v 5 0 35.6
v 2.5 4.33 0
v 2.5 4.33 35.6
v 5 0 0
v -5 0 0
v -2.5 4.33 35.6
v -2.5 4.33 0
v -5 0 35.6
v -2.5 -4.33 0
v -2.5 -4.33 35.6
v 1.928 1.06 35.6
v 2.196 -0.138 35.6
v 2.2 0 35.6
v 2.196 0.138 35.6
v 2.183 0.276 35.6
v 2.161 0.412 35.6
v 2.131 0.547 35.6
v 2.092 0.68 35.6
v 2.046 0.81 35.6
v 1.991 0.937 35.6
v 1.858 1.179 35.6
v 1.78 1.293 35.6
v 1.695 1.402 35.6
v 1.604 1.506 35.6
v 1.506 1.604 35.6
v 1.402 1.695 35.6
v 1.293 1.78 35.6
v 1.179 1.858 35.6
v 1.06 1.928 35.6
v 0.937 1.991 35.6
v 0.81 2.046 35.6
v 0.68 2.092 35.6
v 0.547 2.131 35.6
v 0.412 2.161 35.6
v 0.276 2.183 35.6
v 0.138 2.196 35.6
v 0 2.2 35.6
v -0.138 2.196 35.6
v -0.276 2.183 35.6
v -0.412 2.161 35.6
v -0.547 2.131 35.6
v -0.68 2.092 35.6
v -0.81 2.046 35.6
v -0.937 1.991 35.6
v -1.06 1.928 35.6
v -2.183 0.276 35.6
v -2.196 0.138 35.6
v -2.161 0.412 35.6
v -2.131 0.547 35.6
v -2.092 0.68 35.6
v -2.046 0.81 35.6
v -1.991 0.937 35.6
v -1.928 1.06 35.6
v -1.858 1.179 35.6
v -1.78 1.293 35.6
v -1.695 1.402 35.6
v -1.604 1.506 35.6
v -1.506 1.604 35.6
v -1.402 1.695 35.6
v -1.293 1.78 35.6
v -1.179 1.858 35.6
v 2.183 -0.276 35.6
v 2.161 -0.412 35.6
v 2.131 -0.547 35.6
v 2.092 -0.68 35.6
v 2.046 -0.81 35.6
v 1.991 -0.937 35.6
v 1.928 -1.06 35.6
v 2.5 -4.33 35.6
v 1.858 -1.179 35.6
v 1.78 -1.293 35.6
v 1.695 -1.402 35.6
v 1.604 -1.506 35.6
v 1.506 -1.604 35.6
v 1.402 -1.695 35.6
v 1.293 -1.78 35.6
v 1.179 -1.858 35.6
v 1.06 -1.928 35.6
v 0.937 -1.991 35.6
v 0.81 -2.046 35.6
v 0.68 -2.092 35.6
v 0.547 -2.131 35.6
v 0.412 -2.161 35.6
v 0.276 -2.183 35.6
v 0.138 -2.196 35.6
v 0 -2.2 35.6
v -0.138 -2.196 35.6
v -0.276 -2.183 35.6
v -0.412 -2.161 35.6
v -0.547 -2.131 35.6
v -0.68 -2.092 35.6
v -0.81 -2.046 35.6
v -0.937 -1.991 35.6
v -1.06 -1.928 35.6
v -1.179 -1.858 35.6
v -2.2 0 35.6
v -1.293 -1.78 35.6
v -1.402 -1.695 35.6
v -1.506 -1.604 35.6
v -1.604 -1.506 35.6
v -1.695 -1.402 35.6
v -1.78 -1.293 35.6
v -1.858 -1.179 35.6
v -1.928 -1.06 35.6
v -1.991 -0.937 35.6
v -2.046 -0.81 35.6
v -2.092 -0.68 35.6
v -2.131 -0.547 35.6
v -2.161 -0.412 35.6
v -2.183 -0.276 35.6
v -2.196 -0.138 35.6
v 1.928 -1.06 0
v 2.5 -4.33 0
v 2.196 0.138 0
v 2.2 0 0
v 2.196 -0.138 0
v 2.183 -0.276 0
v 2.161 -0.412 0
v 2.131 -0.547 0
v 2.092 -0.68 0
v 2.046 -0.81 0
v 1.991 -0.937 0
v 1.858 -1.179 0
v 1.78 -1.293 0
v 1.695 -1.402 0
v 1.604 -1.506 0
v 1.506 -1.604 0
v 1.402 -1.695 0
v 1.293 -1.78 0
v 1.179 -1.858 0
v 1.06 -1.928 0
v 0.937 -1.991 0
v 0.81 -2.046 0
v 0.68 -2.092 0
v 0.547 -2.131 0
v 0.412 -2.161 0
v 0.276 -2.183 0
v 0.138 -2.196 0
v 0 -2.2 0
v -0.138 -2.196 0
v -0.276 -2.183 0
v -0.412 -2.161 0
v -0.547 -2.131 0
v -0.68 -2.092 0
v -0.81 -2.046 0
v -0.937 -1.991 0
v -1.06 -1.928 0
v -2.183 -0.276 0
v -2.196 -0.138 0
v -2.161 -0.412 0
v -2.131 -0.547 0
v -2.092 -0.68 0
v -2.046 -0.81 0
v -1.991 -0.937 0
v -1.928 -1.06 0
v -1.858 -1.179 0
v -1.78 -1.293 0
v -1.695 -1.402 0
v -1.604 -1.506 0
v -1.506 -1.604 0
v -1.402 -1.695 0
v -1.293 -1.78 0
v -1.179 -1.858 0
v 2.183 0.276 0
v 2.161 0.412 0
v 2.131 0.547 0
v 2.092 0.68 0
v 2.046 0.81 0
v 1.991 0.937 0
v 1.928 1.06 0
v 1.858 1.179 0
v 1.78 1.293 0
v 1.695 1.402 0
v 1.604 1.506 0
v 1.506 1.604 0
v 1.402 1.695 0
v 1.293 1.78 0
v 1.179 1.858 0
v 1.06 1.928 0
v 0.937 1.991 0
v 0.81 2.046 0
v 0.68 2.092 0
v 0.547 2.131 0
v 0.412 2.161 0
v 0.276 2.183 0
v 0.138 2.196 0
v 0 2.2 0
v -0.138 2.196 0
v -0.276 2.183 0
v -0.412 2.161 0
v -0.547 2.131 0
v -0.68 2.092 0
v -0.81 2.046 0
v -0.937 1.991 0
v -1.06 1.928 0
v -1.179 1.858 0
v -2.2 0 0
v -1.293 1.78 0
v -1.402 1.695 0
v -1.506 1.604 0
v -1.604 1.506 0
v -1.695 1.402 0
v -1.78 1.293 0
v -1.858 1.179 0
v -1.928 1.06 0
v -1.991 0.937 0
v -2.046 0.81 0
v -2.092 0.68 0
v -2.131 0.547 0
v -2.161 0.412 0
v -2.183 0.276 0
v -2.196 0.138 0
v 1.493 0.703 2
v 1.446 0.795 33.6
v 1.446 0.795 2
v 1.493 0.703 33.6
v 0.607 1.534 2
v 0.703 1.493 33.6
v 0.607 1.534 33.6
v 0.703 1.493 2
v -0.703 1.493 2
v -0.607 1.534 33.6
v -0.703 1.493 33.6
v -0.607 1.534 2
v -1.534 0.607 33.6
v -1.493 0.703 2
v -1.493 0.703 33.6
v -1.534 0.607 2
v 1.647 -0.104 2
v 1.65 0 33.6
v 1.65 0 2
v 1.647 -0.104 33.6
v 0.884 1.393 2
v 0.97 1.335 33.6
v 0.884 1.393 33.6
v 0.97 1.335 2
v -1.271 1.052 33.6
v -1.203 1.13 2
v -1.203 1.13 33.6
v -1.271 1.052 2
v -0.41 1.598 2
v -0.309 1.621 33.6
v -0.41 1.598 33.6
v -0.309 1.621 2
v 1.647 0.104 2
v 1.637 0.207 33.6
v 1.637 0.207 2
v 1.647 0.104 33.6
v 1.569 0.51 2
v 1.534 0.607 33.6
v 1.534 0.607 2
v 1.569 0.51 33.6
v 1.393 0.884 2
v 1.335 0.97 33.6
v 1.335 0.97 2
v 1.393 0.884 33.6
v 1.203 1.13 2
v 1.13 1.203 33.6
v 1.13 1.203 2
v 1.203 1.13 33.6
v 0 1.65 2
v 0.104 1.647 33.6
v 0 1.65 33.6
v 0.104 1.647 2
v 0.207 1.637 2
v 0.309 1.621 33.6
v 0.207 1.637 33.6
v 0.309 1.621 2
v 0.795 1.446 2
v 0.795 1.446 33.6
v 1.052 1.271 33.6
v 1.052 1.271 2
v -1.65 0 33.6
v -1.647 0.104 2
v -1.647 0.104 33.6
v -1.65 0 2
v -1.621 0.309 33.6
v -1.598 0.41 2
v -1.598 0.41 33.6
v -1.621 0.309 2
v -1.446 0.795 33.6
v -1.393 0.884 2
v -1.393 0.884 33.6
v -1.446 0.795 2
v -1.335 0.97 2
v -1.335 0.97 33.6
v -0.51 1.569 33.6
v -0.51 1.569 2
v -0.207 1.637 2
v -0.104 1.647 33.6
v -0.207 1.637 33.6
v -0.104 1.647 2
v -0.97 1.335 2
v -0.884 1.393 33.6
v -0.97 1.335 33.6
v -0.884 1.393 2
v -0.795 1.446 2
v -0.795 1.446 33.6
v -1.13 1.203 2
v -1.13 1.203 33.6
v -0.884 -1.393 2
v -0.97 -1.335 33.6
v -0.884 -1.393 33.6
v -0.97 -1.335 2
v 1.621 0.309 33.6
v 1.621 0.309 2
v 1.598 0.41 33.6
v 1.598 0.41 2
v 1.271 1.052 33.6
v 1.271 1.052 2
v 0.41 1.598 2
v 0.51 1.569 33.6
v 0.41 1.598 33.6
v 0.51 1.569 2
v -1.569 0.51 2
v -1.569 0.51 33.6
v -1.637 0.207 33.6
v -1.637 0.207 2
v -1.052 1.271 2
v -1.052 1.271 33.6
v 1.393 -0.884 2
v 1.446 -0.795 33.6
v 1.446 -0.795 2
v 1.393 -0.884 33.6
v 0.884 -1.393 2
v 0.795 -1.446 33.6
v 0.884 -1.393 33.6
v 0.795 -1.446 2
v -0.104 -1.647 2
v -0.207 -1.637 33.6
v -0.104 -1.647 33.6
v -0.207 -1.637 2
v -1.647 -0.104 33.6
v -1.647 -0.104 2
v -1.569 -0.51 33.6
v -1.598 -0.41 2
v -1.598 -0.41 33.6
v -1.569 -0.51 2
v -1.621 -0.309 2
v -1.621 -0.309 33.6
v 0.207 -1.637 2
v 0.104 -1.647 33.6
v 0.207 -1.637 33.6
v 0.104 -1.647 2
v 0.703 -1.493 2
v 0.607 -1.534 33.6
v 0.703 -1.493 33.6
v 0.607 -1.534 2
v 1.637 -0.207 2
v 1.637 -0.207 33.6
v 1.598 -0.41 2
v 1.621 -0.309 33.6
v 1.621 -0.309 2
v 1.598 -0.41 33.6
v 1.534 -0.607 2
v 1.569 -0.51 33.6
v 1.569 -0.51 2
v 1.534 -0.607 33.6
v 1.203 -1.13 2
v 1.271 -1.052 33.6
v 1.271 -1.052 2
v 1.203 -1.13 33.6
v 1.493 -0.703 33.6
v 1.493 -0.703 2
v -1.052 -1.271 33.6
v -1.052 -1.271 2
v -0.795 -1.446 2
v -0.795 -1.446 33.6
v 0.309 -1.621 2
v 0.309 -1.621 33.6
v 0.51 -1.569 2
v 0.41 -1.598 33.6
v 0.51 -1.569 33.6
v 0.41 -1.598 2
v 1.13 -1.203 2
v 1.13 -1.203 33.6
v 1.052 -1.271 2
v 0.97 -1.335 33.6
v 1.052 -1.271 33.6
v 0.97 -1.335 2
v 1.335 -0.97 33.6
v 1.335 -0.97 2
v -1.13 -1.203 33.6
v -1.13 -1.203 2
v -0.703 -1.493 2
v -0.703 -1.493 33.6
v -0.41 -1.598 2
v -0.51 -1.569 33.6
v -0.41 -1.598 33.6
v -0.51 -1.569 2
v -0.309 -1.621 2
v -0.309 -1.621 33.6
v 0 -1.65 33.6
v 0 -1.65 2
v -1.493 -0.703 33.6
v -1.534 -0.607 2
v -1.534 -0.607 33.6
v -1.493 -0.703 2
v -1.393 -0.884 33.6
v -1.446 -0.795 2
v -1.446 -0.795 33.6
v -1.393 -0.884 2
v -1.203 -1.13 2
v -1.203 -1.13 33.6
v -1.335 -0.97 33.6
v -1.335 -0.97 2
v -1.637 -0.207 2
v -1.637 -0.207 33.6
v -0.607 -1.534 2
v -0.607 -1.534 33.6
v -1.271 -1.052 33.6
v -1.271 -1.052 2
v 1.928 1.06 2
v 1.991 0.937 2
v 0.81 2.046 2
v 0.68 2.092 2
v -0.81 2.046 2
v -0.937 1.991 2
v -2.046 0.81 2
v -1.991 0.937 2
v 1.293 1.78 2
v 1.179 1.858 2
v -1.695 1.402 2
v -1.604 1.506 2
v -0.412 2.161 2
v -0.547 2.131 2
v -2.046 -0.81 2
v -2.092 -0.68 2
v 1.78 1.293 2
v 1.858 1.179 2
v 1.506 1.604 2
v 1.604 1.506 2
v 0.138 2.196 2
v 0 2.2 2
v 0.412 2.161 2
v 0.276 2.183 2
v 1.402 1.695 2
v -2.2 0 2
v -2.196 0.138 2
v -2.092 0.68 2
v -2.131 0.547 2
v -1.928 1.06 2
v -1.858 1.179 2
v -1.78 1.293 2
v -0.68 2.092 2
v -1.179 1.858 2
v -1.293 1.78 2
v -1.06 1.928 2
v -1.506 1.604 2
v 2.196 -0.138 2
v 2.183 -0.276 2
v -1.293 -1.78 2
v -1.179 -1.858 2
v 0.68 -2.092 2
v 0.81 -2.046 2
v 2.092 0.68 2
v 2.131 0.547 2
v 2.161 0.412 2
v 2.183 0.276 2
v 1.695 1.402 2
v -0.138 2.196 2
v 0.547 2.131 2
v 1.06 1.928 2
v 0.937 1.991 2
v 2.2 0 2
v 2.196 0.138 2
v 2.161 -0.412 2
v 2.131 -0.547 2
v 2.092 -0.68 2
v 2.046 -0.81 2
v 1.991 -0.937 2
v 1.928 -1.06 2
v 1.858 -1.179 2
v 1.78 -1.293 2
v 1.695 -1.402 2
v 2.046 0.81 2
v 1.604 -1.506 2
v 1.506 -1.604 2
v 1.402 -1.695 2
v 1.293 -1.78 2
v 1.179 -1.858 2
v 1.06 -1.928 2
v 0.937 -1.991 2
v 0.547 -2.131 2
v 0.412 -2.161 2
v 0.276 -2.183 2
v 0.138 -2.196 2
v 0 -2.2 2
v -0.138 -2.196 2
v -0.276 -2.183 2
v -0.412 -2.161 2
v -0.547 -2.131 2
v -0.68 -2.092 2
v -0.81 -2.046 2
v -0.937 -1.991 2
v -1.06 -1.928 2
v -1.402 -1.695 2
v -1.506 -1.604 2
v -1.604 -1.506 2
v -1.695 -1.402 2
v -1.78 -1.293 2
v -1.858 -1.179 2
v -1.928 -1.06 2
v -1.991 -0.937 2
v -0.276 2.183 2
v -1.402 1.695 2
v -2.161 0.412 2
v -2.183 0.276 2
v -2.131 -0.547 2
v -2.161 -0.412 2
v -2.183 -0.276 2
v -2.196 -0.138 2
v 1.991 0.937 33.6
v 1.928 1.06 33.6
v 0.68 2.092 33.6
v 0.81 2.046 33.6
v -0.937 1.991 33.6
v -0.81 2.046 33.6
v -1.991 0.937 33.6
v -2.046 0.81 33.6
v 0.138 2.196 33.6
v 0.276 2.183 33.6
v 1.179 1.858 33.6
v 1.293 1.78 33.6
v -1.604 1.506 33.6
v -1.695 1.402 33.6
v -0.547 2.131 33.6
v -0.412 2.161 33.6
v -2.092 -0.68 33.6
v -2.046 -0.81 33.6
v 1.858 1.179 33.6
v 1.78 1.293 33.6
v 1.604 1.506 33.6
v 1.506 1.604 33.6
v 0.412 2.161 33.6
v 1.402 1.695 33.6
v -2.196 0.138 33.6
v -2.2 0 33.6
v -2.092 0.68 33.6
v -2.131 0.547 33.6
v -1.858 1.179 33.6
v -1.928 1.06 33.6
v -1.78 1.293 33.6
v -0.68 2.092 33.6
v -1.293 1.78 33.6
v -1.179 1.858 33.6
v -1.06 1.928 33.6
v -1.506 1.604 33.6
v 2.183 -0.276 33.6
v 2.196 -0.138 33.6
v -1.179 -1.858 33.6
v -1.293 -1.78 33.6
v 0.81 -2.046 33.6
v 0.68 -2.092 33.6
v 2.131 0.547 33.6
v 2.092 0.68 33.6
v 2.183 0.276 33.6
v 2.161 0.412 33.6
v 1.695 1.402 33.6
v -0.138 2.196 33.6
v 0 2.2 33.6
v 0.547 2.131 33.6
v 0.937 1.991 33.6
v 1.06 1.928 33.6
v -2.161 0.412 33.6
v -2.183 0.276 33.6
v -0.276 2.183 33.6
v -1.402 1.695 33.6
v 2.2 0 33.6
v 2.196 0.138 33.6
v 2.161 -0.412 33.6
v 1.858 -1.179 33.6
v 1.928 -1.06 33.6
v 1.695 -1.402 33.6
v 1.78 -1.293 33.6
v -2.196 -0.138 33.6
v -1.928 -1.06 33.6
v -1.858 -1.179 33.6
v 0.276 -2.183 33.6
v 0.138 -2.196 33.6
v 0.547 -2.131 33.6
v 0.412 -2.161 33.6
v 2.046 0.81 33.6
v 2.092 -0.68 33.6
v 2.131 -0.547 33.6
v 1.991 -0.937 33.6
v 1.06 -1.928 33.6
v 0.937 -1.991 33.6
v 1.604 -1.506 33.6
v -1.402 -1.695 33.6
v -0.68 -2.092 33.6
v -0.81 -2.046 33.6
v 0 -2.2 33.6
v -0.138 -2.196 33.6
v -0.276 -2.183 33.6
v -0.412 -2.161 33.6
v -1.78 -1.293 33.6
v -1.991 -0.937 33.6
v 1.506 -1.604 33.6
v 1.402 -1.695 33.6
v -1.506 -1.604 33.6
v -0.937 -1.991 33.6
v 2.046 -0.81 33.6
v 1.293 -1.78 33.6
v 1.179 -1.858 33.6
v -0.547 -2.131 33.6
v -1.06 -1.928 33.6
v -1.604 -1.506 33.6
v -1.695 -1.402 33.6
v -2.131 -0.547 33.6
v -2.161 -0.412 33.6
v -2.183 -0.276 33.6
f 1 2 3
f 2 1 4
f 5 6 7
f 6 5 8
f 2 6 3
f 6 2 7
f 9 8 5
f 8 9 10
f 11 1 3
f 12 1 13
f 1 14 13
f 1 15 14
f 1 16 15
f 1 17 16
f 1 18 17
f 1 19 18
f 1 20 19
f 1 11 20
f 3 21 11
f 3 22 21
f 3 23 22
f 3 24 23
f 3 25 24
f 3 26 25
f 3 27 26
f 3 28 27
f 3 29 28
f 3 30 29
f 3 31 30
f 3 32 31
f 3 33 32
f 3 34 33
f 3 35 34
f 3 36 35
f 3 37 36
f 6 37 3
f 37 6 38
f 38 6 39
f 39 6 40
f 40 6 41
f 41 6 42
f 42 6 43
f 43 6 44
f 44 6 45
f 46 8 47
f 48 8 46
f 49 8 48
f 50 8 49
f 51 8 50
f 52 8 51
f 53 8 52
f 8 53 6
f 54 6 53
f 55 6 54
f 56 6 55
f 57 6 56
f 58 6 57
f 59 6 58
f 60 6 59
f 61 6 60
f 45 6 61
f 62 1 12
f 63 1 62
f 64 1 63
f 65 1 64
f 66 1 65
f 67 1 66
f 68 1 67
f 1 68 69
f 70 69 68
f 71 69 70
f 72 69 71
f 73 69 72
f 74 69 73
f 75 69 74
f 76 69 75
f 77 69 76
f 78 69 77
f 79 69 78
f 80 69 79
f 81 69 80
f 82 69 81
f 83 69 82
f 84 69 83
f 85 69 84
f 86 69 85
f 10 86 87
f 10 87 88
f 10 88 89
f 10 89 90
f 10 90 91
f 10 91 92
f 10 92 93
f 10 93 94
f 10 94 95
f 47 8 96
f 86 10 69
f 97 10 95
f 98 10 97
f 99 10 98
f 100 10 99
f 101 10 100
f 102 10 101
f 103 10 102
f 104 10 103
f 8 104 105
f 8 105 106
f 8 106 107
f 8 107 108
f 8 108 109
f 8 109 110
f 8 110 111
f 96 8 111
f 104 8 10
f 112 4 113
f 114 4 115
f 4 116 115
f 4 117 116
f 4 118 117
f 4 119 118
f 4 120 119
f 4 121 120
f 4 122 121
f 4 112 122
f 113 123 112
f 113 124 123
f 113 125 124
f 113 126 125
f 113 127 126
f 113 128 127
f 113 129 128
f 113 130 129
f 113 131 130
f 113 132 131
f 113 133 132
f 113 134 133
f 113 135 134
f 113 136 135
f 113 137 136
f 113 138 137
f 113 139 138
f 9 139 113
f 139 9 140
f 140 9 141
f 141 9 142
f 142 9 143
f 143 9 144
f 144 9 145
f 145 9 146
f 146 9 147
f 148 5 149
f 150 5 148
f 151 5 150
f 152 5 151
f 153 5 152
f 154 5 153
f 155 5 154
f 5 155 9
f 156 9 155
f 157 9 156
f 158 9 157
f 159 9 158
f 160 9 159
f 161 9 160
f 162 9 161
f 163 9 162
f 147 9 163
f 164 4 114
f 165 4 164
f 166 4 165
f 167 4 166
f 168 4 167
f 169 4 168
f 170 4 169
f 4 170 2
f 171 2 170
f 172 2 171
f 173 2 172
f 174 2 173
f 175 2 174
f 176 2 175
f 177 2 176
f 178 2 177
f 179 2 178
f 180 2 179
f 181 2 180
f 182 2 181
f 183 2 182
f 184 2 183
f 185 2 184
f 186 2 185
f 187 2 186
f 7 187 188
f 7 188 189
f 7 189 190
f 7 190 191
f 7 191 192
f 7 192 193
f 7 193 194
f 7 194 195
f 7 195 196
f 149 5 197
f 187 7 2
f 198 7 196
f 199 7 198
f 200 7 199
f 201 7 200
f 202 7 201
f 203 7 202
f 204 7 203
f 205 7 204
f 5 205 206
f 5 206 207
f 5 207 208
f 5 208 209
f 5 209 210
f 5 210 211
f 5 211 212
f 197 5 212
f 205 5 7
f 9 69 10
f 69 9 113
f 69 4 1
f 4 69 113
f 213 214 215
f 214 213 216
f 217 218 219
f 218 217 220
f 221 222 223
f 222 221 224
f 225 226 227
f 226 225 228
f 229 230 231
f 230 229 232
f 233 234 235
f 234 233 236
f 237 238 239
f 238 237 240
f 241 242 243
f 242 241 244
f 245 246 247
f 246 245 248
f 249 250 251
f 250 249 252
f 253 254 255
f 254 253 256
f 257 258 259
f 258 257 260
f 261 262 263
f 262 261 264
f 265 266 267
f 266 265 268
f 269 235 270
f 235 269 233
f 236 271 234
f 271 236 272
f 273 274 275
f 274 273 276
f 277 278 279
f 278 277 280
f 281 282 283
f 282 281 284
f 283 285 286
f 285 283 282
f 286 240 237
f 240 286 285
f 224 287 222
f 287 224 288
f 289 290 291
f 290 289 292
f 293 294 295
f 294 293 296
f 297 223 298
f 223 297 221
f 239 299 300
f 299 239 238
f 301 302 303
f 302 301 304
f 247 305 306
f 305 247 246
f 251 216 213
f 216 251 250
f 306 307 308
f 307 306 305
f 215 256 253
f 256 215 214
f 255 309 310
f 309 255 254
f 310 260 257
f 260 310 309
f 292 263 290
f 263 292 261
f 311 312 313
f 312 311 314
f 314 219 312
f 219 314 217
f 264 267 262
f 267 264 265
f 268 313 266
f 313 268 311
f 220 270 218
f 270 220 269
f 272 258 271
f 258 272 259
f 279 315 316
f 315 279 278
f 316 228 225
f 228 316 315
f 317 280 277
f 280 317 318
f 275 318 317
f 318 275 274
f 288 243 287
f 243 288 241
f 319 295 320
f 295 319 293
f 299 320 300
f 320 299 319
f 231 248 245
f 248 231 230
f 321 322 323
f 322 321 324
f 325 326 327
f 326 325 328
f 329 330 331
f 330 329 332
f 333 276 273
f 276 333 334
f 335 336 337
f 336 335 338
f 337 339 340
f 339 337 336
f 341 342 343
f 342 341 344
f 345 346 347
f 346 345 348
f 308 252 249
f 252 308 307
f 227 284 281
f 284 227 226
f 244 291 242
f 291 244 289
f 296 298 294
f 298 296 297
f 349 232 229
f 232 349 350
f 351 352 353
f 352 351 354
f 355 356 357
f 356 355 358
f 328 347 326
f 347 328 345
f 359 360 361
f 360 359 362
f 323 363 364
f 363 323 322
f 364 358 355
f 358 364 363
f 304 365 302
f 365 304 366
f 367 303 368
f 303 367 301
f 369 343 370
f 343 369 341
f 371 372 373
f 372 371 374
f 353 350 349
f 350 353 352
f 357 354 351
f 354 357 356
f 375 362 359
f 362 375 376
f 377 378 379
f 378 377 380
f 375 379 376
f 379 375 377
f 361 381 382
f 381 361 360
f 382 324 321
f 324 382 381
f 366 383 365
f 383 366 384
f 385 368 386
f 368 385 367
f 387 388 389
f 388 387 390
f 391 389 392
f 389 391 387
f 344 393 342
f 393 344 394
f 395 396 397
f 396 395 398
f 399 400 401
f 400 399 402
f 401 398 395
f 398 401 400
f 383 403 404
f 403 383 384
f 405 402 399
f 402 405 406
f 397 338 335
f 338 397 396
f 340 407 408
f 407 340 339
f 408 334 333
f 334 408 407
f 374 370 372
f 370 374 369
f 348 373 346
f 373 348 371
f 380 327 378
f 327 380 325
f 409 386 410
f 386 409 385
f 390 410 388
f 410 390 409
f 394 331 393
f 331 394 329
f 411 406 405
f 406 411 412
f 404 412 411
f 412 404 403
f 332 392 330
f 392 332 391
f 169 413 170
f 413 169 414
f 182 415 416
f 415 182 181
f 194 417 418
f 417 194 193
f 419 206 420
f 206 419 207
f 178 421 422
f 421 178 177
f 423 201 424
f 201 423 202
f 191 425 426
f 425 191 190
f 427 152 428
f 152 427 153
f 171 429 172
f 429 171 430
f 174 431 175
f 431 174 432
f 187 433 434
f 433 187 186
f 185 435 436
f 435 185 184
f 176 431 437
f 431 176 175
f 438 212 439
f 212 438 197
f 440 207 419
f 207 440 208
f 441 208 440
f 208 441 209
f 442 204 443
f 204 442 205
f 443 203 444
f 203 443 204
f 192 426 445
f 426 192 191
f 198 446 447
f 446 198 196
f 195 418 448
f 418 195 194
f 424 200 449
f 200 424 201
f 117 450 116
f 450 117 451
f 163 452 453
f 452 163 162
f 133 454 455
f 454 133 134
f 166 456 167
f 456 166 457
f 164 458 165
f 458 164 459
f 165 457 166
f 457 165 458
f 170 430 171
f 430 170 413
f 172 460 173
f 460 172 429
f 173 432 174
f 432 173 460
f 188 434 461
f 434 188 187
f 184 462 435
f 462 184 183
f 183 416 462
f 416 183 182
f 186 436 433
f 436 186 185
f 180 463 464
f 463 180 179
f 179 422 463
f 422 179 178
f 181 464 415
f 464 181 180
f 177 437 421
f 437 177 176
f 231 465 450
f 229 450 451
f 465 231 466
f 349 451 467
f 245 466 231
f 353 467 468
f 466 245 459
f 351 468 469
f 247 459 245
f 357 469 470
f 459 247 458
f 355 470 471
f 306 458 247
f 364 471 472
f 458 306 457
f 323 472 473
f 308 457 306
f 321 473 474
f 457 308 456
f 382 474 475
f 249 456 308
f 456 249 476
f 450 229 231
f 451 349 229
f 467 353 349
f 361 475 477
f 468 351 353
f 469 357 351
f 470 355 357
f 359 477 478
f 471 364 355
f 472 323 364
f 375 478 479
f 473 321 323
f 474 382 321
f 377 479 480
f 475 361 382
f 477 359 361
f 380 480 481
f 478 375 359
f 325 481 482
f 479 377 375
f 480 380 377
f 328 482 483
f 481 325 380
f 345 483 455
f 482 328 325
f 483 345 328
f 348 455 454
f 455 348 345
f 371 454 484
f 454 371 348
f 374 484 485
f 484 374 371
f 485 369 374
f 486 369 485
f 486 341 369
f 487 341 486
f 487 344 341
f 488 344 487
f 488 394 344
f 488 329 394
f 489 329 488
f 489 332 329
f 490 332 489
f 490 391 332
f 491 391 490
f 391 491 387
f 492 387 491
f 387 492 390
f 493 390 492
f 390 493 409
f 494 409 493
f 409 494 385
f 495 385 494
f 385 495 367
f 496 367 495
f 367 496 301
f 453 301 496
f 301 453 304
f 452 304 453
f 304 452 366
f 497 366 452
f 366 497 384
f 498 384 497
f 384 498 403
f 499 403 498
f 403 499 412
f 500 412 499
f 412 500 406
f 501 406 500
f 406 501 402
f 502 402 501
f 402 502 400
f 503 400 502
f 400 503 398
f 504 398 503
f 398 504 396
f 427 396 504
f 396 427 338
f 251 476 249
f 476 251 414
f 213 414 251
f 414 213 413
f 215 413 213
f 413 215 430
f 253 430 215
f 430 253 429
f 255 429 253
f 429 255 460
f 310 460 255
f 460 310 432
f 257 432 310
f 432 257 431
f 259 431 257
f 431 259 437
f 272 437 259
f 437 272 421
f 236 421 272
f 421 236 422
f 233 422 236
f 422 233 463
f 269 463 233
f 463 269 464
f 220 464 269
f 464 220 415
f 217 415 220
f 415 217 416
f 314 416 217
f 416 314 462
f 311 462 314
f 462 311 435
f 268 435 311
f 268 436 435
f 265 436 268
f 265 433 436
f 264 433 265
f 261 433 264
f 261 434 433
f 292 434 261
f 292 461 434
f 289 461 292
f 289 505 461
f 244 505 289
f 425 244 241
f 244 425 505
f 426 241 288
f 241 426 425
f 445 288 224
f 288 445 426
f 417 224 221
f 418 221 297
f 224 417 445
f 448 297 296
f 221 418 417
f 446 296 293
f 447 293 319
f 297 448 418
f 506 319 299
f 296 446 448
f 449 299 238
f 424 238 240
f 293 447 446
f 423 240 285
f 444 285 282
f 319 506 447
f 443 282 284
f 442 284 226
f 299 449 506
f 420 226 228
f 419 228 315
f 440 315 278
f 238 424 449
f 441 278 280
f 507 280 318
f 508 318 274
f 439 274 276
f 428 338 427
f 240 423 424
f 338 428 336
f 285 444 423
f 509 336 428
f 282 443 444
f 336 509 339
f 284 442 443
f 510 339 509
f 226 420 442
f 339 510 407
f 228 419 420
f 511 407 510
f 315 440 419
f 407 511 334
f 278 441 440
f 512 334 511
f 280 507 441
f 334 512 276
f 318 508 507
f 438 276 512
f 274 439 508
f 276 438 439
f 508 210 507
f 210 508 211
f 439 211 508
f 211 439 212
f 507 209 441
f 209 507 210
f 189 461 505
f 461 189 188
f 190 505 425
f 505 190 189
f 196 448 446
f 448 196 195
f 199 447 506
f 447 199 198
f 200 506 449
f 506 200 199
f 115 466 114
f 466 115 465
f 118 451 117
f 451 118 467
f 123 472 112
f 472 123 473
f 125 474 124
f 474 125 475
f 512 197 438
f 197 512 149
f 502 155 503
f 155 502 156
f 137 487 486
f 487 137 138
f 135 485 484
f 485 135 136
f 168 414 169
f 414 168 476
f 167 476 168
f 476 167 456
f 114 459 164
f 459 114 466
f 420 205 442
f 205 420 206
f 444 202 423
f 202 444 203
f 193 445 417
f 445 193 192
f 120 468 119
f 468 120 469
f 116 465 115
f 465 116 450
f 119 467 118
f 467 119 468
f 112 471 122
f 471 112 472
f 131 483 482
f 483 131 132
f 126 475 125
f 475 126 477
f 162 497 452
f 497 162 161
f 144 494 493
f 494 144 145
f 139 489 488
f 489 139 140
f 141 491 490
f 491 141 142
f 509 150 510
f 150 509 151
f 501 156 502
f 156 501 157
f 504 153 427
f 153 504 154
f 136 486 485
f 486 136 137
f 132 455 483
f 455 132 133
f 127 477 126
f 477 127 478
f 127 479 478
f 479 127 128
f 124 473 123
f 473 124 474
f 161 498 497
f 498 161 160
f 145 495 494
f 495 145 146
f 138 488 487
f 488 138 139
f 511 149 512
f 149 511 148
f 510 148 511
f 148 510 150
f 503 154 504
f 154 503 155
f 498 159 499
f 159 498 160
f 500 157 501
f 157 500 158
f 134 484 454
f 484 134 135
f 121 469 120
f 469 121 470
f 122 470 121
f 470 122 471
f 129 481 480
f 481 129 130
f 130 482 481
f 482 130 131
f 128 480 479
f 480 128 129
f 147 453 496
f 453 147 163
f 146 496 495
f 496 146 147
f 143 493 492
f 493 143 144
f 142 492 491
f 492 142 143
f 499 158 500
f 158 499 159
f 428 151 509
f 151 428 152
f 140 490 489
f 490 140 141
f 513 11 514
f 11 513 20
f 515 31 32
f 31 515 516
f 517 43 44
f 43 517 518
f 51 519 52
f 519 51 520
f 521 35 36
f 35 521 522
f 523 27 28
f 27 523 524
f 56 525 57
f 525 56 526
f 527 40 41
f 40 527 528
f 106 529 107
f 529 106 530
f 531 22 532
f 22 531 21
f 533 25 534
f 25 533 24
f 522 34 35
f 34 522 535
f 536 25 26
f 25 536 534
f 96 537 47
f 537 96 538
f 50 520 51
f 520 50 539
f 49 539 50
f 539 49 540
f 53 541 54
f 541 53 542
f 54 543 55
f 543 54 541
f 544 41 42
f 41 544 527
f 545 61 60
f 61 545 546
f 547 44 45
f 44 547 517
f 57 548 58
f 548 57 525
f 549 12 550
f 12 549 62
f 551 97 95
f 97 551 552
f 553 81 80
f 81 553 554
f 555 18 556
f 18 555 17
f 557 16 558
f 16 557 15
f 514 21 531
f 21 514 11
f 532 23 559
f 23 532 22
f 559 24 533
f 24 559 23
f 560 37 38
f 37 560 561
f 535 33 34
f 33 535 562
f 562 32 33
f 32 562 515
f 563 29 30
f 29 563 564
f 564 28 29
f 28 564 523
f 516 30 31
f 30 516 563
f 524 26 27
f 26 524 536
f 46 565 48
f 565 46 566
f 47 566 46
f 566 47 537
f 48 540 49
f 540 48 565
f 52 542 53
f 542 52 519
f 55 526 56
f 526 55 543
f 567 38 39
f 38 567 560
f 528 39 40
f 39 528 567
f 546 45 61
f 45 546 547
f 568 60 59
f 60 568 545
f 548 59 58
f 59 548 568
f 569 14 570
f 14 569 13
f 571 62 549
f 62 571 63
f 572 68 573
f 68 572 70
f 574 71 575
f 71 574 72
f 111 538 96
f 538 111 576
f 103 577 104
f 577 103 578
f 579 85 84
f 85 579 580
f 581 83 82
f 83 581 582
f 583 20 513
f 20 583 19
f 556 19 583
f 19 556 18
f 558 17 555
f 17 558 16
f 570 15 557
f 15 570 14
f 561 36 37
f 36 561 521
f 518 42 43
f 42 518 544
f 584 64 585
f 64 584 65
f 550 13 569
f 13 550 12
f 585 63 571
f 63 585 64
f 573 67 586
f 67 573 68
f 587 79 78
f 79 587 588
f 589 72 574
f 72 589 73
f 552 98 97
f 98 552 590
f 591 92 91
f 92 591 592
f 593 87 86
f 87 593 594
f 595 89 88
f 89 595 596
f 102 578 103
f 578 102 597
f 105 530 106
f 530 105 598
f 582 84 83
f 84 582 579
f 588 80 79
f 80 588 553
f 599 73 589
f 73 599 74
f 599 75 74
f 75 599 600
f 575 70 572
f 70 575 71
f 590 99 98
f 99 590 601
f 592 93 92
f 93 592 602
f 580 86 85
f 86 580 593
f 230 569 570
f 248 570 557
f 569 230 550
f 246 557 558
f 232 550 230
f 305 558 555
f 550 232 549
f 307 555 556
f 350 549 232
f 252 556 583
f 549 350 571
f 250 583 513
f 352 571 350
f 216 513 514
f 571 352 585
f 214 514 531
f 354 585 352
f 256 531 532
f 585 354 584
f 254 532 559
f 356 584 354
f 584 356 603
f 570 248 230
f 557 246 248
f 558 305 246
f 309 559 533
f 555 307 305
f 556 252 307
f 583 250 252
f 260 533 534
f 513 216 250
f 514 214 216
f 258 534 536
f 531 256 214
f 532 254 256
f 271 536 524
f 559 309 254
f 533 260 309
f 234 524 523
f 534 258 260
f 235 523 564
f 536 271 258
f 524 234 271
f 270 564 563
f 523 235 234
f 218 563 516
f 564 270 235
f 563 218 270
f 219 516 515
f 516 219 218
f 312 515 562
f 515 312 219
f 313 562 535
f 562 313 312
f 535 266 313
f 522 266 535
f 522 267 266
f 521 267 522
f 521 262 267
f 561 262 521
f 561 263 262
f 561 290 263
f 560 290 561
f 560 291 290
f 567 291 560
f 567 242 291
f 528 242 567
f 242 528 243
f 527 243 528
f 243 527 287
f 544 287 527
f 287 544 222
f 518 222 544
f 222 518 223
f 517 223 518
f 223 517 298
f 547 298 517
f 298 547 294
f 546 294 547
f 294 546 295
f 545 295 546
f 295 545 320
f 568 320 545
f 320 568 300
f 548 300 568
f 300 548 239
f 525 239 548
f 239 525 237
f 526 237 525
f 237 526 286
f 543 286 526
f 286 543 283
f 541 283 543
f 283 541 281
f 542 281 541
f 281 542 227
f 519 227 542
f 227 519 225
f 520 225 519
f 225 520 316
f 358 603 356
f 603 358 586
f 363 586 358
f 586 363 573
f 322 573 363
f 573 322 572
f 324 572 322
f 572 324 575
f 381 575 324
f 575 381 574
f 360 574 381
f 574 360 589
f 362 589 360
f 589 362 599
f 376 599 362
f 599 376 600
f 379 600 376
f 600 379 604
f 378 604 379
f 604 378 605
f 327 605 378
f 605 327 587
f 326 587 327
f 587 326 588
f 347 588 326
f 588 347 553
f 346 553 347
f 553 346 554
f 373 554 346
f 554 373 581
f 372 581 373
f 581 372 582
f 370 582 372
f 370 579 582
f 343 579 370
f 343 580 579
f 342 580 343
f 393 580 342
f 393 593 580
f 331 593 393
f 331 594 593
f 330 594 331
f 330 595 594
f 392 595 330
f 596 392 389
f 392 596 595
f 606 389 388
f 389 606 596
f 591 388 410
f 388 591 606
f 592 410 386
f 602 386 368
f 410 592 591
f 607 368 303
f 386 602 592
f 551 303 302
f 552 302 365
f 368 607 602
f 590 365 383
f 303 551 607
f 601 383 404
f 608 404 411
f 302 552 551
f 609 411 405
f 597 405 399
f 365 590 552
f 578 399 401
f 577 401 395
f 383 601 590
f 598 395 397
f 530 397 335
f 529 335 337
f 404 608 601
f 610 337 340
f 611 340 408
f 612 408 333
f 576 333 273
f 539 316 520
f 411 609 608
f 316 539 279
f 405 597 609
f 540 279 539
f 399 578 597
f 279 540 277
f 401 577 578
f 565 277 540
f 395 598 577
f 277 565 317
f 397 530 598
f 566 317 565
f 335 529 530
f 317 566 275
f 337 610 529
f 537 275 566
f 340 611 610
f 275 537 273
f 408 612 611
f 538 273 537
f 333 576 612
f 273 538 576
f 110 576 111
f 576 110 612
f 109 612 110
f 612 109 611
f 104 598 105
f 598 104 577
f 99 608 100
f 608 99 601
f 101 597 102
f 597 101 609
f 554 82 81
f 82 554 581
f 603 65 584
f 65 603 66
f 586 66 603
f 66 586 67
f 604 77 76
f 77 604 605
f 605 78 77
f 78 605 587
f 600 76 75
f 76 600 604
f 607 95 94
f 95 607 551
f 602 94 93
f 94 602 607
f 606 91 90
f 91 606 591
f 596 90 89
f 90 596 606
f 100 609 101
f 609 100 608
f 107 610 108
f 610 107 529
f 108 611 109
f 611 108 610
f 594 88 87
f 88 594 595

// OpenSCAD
//Soportes:
cilindros(3.3,35.6,20,3.3,6,4.4);

module cilindros(diam_in,altura,separacion,diam_inserto,h_inserto,diam_inserto_arriba){
translate([separacion*0,0,0])
    difference(){
        cylinder(d=10,h=altura,$fn=6);
        translate([0,0,-0.01])
            cylinder(d=diam_in,h=altura*2,$fn=100);
        //inferior:M3*6*4.2
        translate([0,0,-0.01])
            cylinder(d=diam_inserto,h=8,$fn=100);
        translate([0,0,-0.01])
            cylinder(d=diam_inserto_arriba,h=2+0.01,$fn=100);
        //superior:M3*6*4.2
        translate([0,0,altura-h_inserto])
            cylinder(d=diam_inserto,h=h_inserto+0.01,$fn=100);
        translate([0,0,altura-2])
            cylinder(d=diam_inserto_arriba,h=2+0.01,$fn=100);
        
        
    }
//-----------Quitar comentario para imprimir los 4------
/*
translate([separacion*1,0,0])
    difference(){
        cylinder(d=10,h=altura,$fn=5);
        translate([0,0,-0.01])
            cylinder(d=diam_in,h=altura*2,$fn=100);
        //inferior:M3*6*4.2
        translate([0,0,-0.01])
            cylinder(d=diam_inserto,h=h_inserto,$fn=100);
        //superior:M3*6*4.2
        translate([0,0,altura-6])
            cylinder(d=diam_inserto,h=h_inserto+0.01,$fn=100);
    }
translate([separacion*2,0,0])
    difference(){
        cylinder(d=10,h=altura,$fn=5);
        translate([0,0,-0.01])
            cylinder(d=diam_in,h=altura*2,$fn=100);
        //inferior:M3*6*4.2
        translate([0,0,-0.01])
            cylinder(d=diam_inserto,h=h_inserto,$fn=100);
        //superior:M3*6*4.2
        translate([0,0,altura-6])
            cylinder(d=diam_inserto,h=h_inserto+0.01,$fn=100);
    }
translate([separacion*3,0,0])
    difference(){
        cylinder(d=10,h=altura,$fn=5);
        translate([0,0,-0.01])
            cylinder(d=diam_in,h=altura*2,$fn=100);
        //inferior:M3*6*4.2
        translate([0,0,-0.01])
            cylinder(d=diam_inserto,h=h_inserto,$fn=100);
        //superior:M3*6*4.2
        translate([0,0,altura-6])
            cylinder(d=diam_inserto,h=h_inserto+0.01,$fn=100);
    }*/
}
